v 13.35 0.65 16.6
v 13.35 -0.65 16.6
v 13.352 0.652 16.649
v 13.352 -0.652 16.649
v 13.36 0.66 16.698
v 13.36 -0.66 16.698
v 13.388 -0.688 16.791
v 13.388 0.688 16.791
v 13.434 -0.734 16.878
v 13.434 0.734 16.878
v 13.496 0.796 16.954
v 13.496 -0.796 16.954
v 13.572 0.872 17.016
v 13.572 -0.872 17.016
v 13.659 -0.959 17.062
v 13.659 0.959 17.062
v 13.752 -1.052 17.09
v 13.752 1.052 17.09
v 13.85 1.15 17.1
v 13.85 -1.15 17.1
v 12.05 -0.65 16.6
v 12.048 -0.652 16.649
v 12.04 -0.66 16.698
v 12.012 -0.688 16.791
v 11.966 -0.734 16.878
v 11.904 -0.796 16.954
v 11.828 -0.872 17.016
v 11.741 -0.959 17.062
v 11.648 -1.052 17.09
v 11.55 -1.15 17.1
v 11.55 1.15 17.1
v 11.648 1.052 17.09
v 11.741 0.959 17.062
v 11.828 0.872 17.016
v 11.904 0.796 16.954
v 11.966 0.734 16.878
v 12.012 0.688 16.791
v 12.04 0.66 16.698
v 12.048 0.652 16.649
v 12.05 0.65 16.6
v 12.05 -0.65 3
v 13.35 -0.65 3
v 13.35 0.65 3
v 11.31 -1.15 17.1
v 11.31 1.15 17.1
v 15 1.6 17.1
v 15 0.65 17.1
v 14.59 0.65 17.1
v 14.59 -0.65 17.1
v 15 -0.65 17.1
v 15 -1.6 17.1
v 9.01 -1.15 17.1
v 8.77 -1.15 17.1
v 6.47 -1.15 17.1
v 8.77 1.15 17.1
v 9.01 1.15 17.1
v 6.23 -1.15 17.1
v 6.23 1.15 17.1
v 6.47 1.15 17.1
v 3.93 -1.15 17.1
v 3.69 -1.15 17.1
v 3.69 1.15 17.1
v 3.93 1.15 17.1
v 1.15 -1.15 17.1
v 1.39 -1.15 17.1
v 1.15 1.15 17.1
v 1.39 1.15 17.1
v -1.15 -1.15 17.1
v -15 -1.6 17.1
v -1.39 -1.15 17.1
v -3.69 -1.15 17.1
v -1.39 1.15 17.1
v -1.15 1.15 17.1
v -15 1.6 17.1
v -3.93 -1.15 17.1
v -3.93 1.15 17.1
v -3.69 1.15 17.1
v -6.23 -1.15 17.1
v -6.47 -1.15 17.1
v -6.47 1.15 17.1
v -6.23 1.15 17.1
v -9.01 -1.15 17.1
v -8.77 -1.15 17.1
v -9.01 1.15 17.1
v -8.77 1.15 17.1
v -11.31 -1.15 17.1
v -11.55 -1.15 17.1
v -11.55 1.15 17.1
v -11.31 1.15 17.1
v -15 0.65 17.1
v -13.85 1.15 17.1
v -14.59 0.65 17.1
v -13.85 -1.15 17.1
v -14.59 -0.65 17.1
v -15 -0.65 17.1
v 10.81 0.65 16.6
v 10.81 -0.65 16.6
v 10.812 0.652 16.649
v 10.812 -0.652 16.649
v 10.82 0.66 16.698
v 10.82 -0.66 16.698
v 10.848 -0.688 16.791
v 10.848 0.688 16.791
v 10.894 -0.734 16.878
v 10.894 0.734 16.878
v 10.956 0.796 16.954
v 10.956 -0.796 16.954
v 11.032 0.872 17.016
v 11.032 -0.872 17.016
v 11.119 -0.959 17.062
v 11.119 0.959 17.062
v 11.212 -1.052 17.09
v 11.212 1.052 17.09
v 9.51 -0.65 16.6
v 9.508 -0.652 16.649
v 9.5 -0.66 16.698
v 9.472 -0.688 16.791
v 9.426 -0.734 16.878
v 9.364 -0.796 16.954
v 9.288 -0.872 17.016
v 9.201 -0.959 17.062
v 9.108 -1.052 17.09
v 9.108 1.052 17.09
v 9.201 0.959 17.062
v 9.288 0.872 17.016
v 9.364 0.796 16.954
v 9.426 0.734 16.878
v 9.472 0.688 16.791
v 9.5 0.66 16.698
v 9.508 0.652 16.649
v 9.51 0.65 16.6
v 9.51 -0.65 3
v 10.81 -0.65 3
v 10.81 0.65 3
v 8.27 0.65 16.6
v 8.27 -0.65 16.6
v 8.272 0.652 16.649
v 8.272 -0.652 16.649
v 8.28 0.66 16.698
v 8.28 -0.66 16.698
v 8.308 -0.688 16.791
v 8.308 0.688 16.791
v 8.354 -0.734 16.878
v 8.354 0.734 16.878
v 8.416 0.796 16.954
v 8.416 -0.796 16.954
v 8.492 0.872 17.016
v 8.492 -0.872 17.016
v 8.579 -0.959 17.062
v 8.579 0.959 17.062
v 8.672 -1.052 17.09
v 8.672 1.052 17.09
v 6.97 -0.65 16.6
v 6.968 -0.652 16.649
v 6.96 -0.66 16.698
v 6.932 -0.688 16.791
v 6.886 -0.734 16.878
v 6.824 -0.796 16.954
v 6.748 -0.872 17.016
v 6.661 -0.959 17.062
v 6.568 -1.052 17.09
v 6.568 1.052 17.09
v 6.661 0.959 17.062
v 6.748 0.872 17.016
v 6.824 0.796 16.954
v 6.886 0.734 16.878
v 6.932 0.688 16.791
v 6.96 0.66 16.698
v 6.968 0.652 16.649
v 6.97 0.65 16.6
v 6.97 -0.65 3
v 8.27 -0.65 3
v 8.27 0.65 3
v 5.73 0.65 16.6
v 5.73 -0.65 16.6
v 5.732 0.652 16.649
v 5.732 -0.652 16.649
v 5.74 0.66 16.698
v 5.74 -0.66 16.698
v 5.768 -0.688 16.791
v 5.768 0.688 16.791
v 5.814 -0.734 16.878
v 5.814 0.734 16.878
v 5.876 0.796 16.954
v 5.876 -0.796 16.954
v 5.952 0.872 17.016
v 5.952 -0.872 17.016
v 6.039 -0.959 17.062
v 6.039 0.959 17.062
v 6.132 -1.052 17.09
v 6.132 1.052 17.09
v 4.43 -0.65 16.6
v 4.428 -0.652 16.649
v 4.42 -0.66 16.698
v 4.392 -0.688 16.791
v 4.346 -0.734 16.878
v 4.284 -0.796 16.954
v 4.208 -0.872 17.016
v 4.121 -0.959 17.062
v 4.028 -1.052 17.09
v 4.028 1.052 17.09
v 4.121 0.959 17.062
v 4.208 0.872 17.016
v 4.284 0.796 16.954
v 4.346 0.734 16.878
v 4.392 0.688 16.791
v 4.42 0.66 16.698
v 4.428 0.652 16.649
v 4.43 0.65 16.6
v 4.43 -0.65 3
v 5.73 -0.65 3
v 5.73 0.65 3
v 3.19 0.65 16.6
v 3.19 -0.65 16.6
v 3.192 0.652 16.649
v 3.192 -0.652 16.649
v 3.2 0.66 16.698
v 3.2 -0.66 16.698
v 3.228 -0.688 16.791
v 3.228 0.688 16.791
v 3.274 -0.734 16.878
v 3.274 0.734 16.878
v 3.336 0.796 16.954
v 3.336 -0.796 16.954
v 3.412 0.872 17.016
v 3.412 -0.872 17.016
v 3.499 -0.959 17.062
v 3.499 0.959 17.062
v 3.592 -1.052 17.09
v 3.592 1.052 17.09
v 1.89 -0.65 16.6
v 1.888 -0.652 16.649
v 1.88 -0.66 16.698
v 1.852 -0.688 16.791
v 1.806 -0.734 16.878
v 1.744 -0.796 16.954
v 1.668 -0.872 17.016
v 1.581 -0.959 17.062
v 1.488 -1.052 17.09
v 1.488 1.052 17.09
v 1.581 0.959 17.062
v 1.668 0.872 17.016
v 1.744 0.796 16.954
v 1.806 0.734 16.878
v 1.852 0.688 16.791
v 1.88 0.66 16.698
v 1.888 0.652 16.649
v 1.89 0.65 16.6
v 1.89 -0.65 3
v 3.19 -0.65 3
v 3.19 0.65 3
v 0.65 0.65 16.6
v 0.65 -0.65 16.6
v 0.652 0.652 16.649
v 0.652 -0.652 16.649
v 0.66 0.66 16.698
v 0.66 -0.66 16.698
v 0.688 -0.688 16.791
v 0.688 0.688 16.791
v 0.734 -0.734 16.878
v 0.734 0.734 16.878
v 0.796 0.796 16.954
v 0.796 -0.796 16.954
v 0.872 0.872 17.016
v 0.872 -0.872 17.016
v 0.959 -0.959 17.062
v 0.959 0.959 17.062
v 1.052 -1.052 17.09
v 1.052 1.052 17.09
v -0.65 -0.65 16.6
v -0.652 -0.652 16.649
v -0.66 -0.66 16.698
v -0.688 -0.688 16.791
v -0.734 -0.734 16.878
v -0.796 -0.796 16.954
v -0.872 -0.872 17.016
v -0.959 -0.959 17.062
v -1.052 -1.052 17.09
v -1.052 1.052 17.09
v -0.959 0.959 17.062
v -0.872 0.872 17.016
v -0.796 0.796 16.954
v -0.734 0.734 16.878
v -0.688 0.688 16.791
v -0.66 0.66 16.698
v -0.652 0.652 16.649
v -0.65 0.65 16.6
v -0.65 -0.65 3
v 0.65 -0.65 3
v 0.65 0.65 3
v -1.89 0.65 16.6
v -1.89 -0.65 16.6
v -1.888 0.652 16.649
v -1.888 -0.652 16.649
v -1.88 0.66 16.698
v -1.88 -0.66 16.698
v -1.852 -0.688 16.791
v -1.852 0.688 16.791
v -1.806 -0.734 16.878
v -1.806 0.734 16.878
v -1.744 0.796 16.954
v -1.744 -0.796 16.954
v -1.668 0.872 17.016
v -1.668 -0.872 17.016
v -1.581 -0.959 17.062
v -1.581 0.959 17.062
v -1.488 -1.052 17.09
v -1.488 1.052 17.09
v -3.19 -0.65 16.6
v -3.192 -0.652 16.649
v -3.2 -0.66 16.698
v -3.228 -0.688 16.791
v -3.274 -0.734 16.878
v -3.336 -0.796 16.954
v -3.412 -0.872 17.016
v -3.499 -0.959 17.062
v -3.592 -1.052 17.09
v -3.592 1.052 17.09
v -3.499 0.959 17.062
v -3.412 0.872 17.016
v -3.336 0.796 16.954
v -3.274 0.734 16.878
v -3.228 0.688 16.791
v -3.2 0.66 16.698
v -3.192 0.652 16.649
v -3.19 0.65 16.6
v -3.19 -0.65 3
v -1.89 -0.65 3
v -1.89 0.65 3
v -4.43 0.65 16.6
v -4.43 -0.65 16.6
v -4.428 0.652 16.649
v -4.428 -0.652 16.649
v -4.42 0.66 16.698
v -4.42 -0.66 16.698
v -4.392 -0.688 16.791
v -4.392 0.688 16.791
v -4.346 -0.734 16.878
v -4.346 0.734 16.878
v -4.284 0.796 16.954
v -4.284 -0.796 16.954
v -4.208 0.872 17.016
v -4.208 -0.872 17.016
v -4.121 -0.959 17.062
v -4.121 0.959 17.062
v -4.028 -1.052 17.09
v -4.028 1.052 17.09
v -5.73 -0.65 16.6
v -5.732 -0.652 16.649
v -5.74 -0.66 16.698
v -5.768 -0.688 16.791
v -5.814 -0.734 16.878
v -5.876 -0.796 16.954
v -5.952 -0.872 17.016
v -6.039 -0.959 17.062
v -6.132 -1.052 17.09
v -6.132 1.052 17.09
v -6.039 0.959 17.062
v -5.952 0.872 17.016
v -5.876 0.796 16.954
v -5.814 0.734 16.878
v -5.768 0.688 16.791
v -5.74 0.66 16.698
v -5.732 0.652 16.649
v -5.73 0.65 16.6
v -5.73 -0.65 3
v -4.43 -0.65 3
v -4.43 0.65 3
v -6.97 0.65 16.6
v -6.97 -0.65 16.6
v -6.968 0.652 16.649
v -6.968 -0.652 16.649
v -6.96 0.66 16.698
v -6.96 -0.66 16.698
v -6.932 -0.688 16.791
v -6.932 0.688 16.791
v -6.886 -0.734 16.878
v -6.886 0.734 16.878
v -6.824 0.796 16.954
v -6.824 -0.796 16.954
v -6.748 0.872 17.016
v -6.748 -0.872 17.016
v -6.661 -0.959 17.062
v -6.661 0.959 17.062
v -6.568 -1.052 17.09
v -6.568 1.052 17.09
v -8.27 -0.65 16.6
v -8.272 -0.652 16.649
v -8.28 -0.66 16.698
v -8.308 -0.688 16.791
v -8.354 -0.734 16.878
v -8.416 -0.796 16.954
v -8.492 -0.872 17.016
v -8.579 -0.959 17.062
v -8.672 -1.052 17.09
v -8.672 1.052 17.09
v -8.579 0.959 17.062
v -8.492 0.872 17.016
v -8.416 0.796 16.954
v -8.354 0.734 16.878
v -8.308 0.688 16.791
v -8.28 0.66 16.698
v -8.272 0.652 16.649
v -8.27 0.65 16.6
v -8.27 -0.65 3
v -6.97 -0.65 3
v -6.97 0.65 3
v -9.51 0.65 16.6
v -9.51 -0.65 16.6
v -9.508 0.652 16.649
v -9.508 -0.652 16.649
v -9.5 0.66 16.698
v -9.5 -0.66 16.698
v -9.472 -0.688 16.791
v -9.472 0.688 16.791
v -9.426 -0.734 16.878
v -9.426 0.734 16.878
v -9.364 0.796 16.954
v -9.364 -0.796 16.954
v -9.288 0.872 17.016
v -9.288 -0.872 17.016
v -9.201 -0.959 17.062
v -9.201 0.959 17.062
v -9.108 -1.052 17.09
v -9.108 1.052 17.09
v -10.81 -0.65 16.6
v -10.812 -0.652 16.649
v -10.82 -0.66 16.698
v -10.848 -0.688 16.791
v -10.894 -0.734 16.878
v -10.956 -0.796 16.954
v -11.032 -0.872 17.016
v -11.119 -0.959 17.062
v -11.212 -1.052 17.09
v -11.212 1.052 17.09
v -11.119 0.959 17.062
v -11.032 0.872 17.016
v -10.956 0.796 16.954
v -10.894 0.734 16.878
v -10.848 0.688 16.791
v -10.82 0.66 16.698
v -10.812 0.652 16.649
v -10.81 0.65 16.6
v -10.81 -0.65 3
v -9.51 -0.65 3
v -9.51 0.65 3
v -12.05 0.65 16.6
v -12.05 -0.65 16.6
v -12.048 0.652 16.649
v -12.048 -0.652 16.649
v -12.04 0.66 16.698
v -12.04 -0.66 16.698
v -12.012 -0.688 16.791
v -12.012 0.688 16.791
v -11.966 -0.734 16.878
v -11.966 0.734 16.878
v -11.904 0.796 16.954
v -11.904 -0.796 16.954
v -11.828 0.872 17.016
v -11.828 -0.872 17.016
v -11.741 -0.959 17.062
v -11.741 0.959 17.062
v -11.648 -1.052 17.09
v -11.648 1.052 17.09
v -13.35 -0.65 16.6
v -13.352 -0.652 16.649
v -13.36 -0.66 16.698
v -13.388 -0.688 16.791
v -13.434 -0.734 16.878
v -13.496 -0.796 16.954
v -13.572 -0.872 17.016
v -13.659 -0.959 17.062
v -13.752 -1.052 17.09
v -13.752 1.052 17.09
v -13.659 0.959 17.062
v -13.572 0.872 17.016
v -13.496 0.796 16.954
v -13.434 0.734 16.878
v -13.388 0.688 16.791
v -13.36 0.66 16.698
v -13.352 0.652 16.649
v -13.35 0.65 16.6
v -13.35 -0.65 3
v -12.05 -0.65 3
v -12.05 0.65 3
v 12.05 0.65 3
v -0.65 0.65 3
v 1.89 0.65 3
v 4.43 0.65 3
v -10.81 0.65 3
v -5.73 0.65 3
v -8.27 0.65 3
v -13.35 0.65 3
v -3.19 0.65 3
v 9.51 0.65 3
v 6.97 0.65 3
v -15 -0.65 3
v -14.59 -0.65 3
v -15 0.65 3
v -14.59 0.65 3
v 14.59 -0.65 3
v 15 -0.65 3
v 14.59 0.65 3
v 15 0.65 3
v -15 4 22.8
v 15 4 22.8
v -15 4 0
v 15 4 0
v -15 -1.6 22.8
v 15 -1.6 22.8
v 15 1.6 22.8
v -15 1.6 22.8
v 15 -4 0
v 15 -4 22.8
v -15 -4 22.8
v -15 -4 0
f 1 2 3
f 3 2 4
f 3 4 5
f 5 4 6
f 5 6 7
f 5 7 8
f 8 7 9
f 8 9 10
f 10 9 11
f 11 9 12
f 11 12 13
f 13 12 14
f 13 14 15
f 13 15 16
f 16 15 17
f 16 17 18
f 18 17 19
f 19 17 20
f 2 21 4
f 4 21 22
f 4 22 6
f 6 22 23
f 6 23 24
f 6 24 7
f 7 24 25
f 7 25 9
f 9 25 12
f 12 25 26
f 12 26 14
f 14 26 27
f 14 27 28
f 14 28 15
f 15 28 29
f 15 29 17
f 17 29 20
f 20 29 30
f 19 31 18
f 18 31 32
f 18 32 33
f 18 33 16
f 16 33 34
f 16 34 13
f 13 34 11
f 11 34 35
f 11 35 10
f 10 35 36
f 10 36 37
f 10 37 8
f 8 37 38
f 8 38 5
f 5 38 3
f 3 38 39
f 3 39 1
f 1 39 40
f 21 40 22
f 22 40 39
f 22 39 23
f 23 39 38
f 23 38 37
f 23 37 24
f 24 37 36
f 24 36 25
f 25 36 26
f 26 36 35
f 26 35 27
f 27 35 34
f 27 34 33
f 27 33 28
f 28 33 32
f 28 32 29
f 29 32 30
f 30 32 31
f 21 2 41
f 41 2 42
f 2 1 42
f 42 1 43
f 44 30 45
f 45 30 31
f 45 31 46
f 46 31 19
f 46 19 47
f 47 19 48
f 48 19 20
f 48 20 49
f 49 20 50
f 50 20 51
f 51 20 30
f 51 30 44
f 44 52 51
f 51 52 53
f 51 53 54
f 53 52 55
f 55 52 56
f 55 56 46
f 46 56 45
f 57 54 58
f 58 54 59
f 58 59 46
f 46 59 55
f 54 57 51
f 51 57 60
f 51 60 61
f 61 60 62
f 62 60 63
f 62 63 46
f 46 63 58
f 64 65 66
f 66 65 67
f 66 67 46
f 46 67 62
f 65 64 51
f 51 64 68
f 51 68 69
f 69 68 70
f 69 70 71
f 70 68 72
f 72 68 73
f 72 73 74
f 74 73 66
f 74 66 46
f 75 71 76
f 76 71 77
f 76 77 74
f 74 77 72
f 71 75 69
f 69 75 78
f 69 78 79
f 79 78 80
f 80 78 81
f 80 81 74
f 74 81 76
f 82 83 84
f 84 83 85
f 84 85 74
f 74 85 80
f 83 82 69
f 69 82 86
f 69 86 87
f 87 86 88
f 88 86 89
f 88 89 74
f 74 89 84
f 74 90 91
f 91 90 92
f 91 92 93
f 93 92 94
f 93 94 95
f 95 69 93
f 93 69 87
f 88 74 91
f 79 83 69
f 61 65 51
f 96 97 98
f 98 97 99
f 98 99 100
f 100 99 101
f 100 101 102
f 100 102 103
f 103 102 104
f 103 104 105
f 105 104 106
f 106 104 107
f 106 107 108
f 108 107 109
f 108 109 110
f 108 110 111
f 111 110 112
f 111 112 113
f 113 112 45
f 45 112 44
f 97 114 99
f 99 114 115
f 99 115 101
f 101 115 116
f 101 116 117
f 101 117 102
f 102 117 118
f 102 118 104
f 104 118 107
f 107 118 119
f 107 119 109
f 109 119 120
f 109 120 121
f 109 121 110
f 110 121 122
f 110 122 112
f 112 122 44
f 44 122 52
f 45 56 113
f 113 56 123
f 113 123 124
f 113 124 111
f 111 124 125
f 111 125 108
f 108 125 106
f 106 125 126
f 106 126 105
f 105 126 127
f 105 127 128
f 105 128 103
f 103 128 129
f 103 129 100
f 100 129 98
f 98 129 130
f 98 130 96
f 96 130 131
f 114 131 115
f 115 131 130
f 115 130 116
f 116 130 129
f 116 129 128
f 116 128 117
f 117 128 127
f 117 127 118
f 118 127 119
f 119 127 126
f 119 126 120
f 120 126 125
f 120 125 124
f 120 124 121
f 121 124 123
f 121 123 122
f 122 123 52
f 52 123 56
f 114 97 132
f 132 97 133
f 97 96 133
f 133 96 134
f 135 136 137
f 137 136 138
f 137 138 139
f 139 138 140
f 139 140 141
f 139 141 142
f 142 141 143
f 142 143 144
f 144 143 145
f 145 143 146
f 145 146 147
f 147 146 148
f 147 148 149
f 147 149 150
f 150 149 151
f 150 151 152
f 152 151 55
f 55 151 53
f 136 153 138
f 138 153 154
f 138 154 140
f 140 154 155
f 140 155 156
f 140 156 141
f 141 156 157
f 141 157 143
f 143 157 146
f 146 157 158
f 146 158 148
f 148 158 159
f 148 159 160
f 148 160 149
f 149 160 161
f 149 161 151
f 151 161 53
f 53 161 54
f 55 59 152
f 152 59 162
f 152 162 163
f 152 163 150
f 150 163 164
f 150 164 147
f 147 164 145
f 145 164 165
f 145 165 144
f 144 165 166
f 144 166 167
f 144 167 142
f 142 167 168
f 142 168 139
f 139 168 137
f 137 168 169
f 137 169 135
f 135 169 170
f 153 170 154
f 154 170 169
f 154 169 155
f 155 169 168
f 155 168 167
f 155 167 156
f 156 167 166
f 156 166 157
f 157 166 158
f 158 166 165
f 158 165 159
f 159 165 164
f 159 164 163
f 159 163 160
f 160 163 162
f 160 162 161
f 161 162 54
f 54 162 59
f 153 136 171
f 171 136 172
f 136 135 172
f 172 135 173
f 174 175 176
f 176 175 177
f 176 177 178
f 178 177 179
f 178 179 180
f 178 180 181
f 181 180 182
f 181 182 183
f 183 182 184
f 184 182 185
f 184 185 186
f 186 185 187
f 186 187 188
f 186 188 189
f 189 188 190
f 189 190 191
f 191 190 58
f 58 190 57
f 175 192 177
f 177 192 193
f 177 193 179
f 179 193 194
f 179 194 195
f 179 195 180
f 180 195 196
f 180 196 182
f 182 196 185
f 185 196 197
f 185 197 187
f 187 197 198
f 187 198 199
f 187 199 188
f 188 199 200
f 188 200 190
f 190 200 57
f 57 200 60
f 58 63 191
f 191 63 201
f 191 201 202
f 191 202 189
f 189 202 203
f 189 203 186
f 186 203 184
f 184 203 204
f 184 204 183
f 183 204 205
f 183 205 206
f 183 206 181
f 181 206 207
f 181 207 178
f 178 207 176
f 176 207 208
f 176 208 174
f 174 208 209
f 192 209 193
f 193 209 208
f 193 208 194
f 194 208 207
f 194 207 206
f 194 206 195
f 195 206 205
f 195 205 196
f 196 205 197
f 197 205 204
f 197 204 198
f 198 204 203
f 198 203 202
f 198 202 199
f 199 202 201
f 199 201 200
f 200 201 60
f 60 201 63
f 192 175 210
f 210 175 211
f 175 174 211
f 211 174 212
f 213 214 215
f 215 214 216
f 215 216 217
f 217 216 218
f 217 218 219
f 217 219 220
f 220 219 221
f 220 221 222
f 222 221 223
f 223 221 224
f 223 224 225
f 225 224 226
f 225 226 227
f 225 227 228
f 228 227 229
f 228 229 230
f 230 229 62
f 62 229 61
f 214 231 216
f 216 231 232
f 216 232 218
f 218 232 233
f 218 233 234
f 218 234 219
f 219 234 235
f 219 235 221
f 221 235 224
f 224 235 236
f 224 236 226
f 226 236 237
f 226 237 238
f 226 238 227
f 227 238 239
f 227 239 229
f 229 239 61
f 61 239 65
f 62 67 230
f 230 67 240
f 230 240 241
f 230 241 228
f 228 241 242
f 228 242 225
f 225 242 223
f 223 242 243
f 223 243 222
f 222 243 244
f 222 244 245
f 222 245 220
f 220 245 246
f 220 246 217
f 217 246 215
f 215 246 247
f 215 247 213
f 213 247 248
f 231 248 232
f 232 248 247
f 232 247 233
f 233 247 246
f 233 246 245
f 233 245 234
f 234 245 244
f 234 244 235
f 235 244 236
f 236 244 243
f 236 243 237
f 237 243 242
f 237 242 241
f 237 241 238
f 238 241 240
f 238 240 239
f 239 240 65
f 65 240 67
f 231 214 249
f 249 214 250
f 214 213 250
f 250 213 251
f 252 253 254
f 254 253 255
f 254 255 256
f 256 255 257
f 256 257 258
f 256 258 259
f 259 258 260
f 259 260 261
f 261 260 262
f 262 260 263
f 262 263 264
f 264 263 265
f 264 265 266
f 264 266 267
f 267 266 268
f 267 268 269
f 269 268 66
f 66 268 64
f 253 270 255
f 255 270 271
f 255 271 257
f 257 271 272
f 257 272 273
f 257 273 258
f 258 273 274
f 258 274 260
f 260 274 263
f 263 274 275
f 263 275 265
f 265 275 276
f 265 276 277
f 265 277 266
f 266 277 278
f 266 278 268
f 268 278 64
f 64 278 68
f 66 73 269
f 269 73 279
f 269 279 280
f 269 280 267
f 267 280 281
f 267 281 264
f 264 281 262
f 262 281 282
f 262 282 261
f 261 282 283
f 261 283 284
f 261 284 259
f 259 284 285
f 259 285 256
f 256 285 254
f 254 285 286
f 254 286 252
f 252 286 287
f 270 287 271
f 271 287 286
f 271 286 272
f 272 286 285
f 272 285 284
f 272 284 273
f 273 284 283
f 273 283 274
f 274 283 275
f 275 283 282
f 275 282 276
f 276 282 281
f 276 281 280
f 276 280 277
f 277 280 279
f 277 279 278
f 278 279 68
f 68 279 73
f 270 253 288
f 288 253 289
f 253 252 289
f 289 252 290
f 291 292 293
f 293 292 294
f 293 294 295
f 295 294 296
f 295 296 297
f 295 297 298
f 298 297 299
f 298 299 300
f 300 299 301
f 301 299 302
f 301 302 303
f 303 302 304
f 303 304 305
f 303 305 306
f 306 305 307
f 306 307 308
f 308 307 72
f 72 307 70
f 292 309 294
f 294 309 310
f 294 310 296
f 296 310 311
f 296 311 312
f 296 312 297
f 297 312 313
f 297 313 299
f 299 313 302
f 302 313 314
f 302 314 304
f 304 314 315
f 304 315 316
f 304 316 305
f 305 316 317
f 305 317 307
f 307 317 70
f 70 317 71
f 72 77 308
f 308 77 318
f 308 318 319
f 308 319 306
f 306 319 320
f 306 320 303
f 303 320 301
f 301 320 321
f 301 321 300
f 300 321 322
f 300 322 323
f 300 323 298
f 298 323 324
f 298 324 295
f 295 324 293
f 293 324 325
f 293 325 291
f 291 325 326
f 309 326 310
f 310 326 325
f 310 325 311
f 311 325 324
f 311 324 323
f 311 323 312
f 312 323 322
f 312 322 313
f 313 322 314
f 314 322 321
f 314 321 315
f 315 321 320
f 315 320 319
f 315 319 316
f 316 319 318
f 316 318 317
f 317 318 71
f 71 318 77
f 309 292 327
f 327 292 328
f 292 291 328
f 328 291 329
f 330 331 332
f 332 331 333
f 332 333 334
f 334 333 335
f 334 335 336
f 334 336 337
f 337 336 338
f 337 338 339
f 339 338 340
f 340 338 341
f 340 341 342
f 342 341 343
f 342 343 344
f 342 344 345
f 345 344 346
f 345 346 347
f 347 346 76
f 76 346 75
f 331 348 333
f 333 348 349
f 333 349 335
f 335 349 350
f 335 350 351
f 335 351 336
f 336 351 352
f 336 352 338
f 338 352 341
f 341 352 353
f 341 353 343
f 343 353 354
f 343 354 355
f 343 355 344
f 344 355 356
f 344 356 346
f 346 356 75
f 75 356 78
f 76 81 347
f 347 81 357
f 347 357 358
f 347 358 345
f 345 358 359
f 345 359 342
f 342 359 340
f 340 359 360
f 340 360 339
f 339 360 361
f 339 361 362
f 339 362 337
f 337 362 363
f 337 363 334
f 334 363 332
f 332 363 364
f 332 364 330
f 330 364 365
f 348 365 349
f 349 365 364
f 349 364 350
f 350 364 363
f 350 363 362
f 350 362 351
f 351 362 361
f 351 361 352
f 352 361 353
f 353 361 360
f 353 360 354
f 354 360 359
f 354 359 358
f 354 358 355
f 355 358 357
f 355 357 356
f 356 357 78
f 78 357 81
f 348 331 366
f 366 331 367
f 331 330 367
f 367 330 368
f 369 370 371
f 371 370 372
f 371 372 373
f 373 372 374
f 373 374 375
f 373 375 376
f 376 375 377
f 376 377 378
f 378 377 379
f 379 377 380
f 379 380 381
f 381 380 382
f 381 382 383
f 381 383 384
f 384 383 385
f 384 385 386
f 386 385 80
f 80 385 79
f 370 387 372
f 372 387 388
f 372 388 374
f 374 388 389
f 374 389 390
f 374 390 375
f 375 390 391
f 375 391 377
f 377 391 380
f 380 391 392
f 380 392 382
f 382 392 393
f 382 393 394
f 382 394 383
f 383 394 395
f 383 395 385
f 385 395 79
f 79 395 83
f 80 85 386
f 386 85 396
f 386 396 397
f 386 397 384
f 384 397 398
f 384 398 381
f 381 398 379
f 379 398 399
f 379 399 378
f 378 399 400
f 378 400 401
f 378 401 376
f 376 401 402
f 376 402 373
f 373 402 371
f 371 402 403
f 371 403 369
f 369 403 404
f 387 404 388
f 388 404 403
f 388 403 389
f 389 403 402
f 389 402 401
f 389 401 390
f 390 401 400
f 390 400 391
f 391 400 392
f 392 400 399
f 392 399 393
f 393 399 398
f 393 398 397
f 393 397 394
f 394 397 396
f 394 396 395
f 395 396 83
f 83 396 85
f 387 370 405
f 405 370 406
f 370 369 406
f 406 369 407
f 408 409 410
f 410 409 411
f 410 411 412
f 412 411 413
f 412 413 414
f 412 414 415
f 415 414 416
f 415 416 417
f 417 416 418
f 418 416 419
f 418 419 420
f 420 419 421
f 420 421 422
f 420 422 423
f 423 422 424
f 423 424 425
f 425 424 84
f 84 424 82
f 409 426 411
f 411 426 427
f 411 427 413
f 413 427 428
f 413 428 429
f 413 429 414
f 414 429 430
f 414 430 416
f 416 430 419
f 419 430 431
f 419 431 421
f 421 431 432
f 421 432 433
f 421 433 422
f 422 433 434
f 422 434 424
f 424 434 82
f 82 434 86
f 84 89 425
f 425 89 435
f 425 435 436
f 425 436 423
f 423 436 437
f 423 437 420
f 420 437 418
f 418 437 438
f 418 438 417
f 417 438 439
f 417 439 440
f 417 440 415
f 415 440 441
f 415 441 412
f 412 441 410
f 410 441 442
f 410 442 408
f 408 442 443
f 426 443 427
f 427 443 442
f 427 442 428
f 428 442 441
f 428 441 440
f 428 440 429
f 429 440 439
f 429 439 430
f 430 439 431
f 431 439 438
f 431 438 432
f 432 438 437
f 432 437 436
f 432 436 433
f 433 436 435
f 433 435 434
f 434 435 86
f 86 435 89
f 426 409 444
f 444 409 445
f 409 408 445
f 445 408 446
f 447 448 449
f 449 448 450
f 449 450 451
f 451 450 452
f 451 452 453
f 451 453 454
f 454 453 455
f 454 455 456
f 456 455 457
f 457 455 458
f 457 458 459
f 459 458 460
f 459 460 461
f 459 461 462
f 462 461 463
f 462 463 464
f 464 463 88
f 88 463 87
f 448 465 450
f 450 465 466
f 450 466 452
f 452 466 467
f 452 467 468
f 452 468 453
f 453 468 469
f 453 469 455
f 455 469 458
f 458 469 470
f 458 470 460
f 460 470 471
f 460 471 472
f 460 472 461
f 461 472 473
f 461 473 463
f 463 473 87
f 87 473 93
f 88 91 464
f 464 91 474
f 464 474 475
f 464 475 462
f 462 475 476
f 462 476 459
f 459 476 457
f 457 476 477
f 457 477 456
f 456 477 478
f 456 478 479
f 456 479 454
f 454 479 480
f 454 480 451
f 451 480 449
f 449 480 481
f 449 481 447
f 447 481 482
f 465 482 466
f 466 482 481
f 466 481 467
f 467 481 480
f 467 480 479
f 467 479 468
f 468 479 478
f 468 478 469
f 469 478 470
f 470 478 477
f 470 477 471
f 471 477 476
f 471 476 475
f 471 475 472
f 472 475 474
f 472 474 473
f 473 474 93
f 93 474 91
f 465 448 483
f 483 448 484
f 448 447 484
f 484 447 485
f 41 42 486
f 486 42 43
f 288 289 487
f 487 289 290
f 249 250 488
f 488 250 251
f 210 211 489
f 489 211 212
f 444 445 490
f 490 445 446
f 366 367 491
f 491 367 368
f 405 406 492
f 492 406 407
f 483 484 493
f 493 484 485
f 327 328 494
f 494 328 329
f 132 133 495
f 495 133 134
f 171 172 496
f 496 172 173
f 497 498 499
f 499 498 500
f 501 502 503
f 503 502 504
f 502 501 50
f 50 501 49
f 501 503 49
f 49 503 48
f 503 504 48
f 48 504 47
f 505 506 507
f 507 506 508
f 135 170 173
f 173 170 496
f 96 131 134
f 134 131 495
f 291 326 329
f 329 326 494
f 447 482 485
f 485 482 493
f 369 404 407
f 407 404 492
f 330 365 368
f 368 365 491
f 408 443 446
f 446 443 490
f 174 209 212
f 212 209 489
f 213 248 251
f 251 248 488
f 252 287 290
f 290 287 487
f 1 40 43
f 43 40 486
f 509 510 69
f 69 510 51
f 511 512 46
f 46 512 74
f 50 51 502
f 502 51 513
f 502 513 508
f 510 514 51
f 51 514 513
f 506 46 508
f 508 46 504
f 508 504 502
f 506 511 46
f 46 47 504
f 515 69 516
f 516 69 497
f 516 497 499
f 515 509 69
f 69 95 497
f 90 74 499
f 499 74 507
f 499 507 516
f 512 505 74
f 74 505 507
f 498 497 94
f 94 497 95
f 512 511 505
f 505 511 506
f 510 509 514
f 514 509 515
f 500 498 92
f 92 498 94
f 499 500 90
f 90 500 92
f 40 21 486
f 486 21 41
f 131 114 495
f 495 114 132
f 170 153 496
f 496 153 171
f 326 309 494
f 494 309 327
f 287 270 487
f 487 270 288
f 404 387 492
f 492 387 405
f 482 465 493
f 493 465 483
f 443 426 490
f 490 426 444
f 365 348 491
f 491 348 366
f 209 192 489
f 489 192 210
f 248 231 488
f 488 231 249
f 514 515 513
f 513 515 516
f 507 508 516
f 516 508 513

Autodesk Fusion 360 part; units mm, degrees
sketch "Sketch1" plane through (0, 0, 0) normal (0, 0, 1) x (1, 0, 0)
  line L0 (0, 0) -> (15, 0) construction
  line L1 (15, 0) -> (15, 4)
  line L2 (15, 4) -> (0, 4)
  line L3 (0, 4) -> (0, 0) construction
  line L4 (0, 0) -> (0.65, 0) construction
  line L5 (0.65, 0) -> (0.65, 0.65)
  line L6 (0.65, 0.65) -> (0, 0.65)
  line L7 (0, 0.65) -> (0, 0) construction
  line L8 (0.65, -0.65) -> (0, -0.65)
  line L9 (0.65, 0) -> (0.65, -0.65)
  line L10 (-0.65, 0.65) -> (0, 0.65)
  line L11 (-0.65, 0) -> (-0.65, 0.65)
  line L12 (-0.65, 0) -> (-0.65, -0.65)
  line L13 (-0.65, -0.65) -> (0, -0.65)
  line L14 (1.89, 0) -> (1.89, 0.65)
  line L15 (1.89, 0.65) -> (2.54, 0.65)
  line L16 (3.19, 0) -> (3.19, 0.65)
  line L17 (3.19, 0.65) -> (2.54, 0.65)
  line L18 (3.19, 0) -> (3.19, -0.65)
  line L19 (3.19, -0.65) -> (2.54, -0.65)
  line L20 (1.89, 0) -> (1.89, -0.65)
  line L21 (1.89, -0.65) -> (2.54, -0.65)
  line L22 (2.54, 0) -> (17.54, 0) construction
  line L23 (4.43, 0) -> (4.43, 0.65)
  line L24 (4.43, 0.65) -> (5.08, 0.65)
  line L25 (5.73, 0) -> (5.73, 0.65)
  line L26 (5.73, 0.65) -> (5.08, 0.65)
  line L27 (5.73, 0) -> (5.73, -0.65)
  line L28 (5.73, -0.65) -> (5.08, -0.65)
  line L29 (4.43, 0) -> (4.43, -0.65)
  line L30 (4.43, -0.65) -> (5.08, -0.65)
  line L31 (5.08, 0) -> (20.08, 0) construction
  line L32 (6.97, 0) -> (6.97, 0.65)
  line L33 (6.97, 0.65) -> (7.62, 0.65)
  line L34 (8.27, 0) -> (8.27, 0.65)
  line L35 (8.27, 0.65) -> (7.62, 0.65)
  line L36 (8.27, 0) -> (8.27, -0.65)
  line L37 (8.27, -0.65) -> (7.62, -0.65)
  line L38 (6.97, 0) -> (6.97, -0.65)
  line L39 (6.97, -0.65) -> (7.62, -0.65)
  line L40 (7.62, 0) -> (22.62, 0) construction
  line L41 (9.51, 0) -> (9.51, 0.65)
  line L42 (9.51, 0.65) -> (10.16, 0.65)
  line L43 (10.81, 0) -> (10.81, 0.65)
  line L44 (10.81, 0.65) -> (10.16, 0.65)
  line L45 (10.81, 0) -> (10.81, -0.65)
  line L46 (10.81, -0.65) -> (10.16, -0.65)
  line L47 (9.51, 0) -> (9.51, -0.65)
  line L48 (9.51, -0.65) -> (10.16, -0.65)
  line L49 (10.16, 0) -> (25.16, 0) construction
  line L50 (12.05, 0) -> (12.05, 0.65)
  line L51 (12.05, 0.65) -> (12.7, 0.65)
  line L52 (13.35, 0) -> (13.35, 0.65)
  line L53 (13.35, 0.65) -> (12.7, 0.65)
  line L54 (13.35, 0) -> (13.35, -0.65)
  line L55 (13.35, -0.65) -> (12.7, -0.65)
  line L56 (12.05, 0) -> (12.05, -0.65)
  line L57 (12.05, -0.65) -> (12.7, -0.65)
  line L58 (12.7, 0) -> (27.7, 0) construction
  line L59 (14.59, 0) -> (14.59, 0.65)
  line L60 (14.59, 0.65) -> (15.24, 0.65)
  line L61 (15.89, 0) -> (15.89, 0.65)
  line L62 (15.89, 0.65) -> (15.24, 0.65)
  line L63 (15.89, 0) -> (15.89, -0.65)
  line L64 (15.89, -0.65) -> (15.24, -0.65)
  line L65 (14.59, 0) -> (14.59, -0.65)
  line L66 (14.59, -0.65) -> (15.24, -0.65)
  line L67 (15.24, 0) -> (30.24, 0) construction
  line L68 (-3.19, 0) -> (-3.19, 0.65)
  line L69 (-3.19, 0.65) -> (-2.54, 0.65)
  line L70 (-1.89, 0) -> (-1.89, 0.65)
  line L71 (-1.89, 0.65) -> (-2.54, 0.65)
  line L72 (-1.89, 0) -> (-1.89, -0.65)
  line L73 (-1.89, -0.65) -> (-2.54, -0.65)
  line L74 (-3.19, 0) -> (-3.19, -0.65)
  line L75 (-3.19, -0.65) -> (-2.54, -0.65)
  line L76 (-2.54, 0) -> (12.46, 0) construction
  line L77 (-5.73, 0) -> (-5.73, 0.65)
  line L78 (-5.73, 0.65) -> (-5.08, 0.65)
  line L79 (-4.43, 0) -> (-4.43, 0.65)
  line L80 (-4.43, 0.65) -> (-5.08, 0.65)
  line L81 (-4.43, 0) -> (-4.43, -0.65)
  line L82 (-4.43, -0.65) -> (-5.08, -0.65)
  line L83 (-5.73, 0) -> (-5.73, -0.65)
  line L84 (-5.73, -0.65) -> (-5.08, -0.65)
  line L85 (-5.08, 0) -> (9.92, 0) construction
  line L86 (-8.27, 0) -> (-8.27, 0.65)
  line L87 (-8.27, 0.65) -> (-7.62, 0.65)
  line L88 (-6.97, 0) -> (-6.97, 0.65)
  line L89 (-6.97, 0.65) -> (-7.62, 0.65)
  line L90 (-6.97, 0) -> (-6.97, -0.65)
  line L91 (-6.97, -0.65) -> (-7.62, -0.65)
  line L92 (-8.27, 0) -> (-8.27, -0.65)
  line L93 (-8.27, -0.65) -> (-7.62, -0.65)
  line L94 (-7.62, 0) -> (7.38, 0) construction
  line L95 (-10.81, 0) -> (-10.81, 0.65)
  line L96 (-10.81, 0.65) -> (-10.16, 0.65)
  line L97 (-9.51, 0) -> (-9.51, 0.65)
  line L98 (-9.51, 0.65) -> (-10.16, 0.65)
  line L99 (-9.51, 0) -> (-9.51, -0.65)
  line L100 (-9.51, -0.65) -> (-10.16, -0.65)
  line L101 (-10.81, 0) -> (-10.81, -0.65)
  line L102 (-10.81, -0.65) -> (-10.16, -0.65)
  line L103 (-10.16, 0) -> (4.84, 0) construction
  line L104 (-13.35, 0) -> (-13.35, 0.65)
  line L105 (-13.35, 0.65) -> (-12.7, 0.65)
  line L106 (-12.05, 0) -> (-12.05, 0.65)
  line L107 (-12.05, 0.65) -> (-12.7, 0.65)
  line L108 (-12.05, 0) -> (-12.05, -0.65)
  line L109 (-12.05, -0.65) -> (-12.7, -0.65)
  line L110 (-13.35, 0) -> (-13.35, -0.65)
  line L111 (-13.35, -0.65) -> (-12.7, -0.65)
  line L112 (-12.7, 0) -> (2.3, 0) construction
  line L113 (-15.89, 0) -> (-15.89, 0.65)
  line L114 (-15.89, 0.65) -> (-15.24, 0.65)
  line L115 (-14.59, 0) -> (-14.59, 0.65)
  line L116 (-14.59, 0.65) -> (-15.24, 0.65)
  line L117 (-14.59, 0) -> (-14.59, -0.65)
  line L118 (-14.59, -0.65) -> (-15.24, -0.65)
  line L119 (-15.89, 0) -> (-15.89, -0.65)
  line L120 (-15.89, -0.65) -> (-15.24, -0.65)
  line L121 (-15.24, 0) -> (-0.24, 0) construction
  line L122 (15, 0) -> (15, -4)
  line L123 (15, -4) -> (0, -4)
  line L124 (-15, 0) -> (-15, 4)
  line L125 (-15, 4) -> (0, 4)
  line L126 (-15, 0) -> (-15, -4)
  line L127 (-15, -4) -> (0, -4)
  dimension "d1" = 15
  dimension "d2" = 4
  dimension "d3" = 0.65
  dimension "d4" = 0.65
  dimension "d7" = 15.24
  dimension "d8" = 0
  dimension "d11" = -15.24
  dimension "d12" = 0
extrude "Extrude1" add sketch "Sketch1" along normal blind 22.8 contours L1 L2 L59 L60 L65 L66 L115 L116 L117 L118 L122 L123 L124 L125 L126 L127
sketch "Sketch2" plane through (0, 0, 22.8) normal (0, 0, 1) x (-1, 0, 0)
  line L0 (-12.05, 0.65) -> (-12.05, -0.65)
  line L1 (-12.05, -0.65) -> (-13.35, -0.65)
  line L2 (-13.35, -0.65) -> (-13.35, 0.65)
  line L3 (-13.35, 0.65) -> (-12.05, 0.65)
  line L4 (3.19, 0.65) -> (3.19, -0.65)
  line L5 (3.19, -0.65) -> (1.89, -0.65)
  line L6 (1.89, -0.65) -> (1.89, 0.65)
  line L7 (1.89, 0.65) -> (3.19, 0.65)
  line L8 (-9.51, 0.65) -> (-9.51, -0.65)
  line L9 (-9.51, -0.65) -> (-10.81, -0.65)
  line L10 (-10.81, -0.65) -> (-10.81, 0.65)
  line L11 (-10.81, 0.65) -> (-9.51, 0.65)
  line L12 (-6.97, 0.65) -> (-6.97, -0.65)
  line L13 (-6.97, -0.65) -> (-8.27, -0.65)
  line L14 (-8.27, -0.65) -> (-8.27, 0.65)
  line L15 (-8.27, 0.65) -> (-6.97, 0.65)
  line L16 (13.35, 0.65) -> (13.35, -0.65)
  line L17 (13.35, -0.65) -> (12.05, -0.65)
  line L18 (12.05, -0.65) -> (12.05, 0.65)
  line L19 (12.05, 0.65) -> (13.35, 0.65)
  line L20 (8.27, 0.65) -> (8.27, -0.65)
  line L21 (8.27, -0.65) -> (6.97, -0.65)
  line L22 (6.97, -0.65) -> (6.97, 0.65)
  line L23 (6.97, 0.65) -> (8.27, 0.65)
  line L24 (5.73, 0.65) -> (5.73, -0.65)
  line L25 (5.73, -0.65) -> (4.43, -0.65)
  line L26 (4.43, -0.65) -> (4.43, 0.65)
  line L27 (4.43, 0.65) -> (5.73, 0.65)
  line L28 (10.81, 0.65) -> (10.81, -0.65)
  line L29 (10.81, -0.65) -> (9.51, -0.65)
  line L30 (9.51, -0.65) -> (9.51, 0.65)
  line L31 (9.51, 0.65) -> (10.81, 0.65)
  line L32 (-4.43, 0.65) -> (-4.43, -0.65)
  line L33 (-4.43, -0.65) -> (-5.73, -0.65)
  line L34 (-5.73, -0.65) -> (-5.73, 0.65)
  line L35 (-5.73, 0.65) -> (-4.43, 0.65)
  line L36 (-1.89, 0.65) -> (-1.89, -0.65)
  line L37 (-1.89, -0.65) -> (-3.19, -0.65)
  line L38 (-3.19, -0.65) -> (-3.19, 0.65)
  line L39 (-3.19, 0.65) -> (-1.89, 0.65)
  line L40 (0.65, 0.65) -> (0.65, -0.65)
  line L41 (0.65, -0.65) -> (-0.65, -0.65)
  line L42 (-0.65, -0.65) -> (-0.65, 0.65)
  line L43 (-0.65, 0.65) -> (0.65, 0.65)
  line L44 (14.59, -0.65) -> (14.59, 0.65)
  line L45 (14.59, 0.65) -> (15, 0.65)
  line L46 (15, 0.65) -> (15, 4)
  line L47 (15, 4) -> (-15, 4)
  line L48 (-15, 4) -> (-15, 0.65)
  line L49 (-15, 0.65) -> (-14.59, 0.65)
  line L50 (-14.59, 0.65) -> (-14.59, -0.65)
  line L51 (-14.59, -0.65) -> (-15, -0.65)
  line L52 (-15, -0.65) -> (-15, -4)
  line L53 (-15, -4) -> (15, -4)
  line L54 (15, -4) -> (15, -0.65)
  line L55 (15, -0.65) -> (14.59, -0.65)
  line L56 (0, 0) -> (-15, 0) construction
  line L57 (-15, 0) -> (-15, -1.6)
  line L58 (-15, -1.6) -> (0, -1.6)
  line L59 (0, -1.6) -> (0, 0) construction
  line L60 (-15, 0) -> (-15, 1.6)
  line L61 (-15, 1.6) -> (0, 1.6)
  line L62 (15, 0) -> (15, -1.6)
  line L63 (15, -1.6) -> (0, -1.6)
  line L64 (15, 0) -> (15, 1.6)
  line L65 (15, 1.6) -> (0, 1.6)
  dimension "d15" = 1.6
extrude "Extrude2" cut sketch "Sketch2" against normal blind 5.7 contours L44 L45 L46 L48 L49 L50 L51 L52 L54 L55 L57 L58 L60 L61 L62 L63 L64 L65
extrude "Extrude4" add sketch "Sketch1" along normal blind 3 contours L1 L59 L60 L65 L66 L122 | L1 L2 L59 L60 L65 L66 L115 L116 L117 L118 L122 L123 L124 L125 L126 L127 | L115 L116 L117 L118 L124 L126 | L5 L6 L8 L9 L10 L11 L12 L13 | L14 L15 L16 L17 L18 L19 L20 L21 | L23 L24 L25 L26 L27 L28 L29 L30 | L32 L33 L34 L35 L36 L37 L38 L39 | L41 L42 L43 L44 L45 L46 L47 L48 | L50 L51 L52 L53 L54 L55 L56 L57 | L68 L69 L70 L71 L72 L73 L74 L75 | L77 L78 L79 L80 L81 L82 L83 L84 | L86 L87 L88 L89 L90 L91 L92 L93 | L95 L96 L97 L98 L99 L100 L101 L102 | L104 L105 L106 L107 L108 L109 L110 L111
fillet "Fillet1" radius 0.5 44 edges at (-13.35, 0, 17.1) (-12.7, 0.65, 17.1) (-12.05, 0, 17.1) (-12.7, -0.65, 17.1) (-10.81, 0, 17.1) (-10.16, 0.65, 17.1) (-10.16, -0.65, 17.1) (-9.51, 0, 17.1) (-8.27, 0, 17.1) (-7.62, 0.65, 17.1) (-6.97, 0, 17.1) (-7.62, -0.65, 17.1) (-5.73, 0, 17.1) (-5.08, 0.65, 17.1) (-4.43, 0, 17.1) (-5.08, -0.65, 17.1) (-3.19, 0, 17.1) (-2.54, 0.65, 17.1) (-1.89, 0, 17.1) (-2.54, -0.65, 17.1) (-0.65, 0, 17.1) (0, 0.65, 17.1) (0.65, 0, 17.1) (0, -0.65, 17.1) (1.89, 0, 17.1) (2.54, 0.65, 17.1) (3.19, 0, 17.1) (2.54, -0.65, 17.1) (4.43, 0, 17.1) (5.08, 0.65, 17.1) (5.73, 0, 17.1) (5.08, -0.65, 17.1) (6.97, 0, 17.1) (7.62, 0.65, 17.1) (8.27, 0, 17.1) (7.62, -0.65, 17.1) (9.51, 0, 17.1) (10.16, 0.65, 17.1) (10.81, 0, 17.1) (10.16, -0.65, 17.1) (12.05, 0, 17.1) (12.7, 0.65, 17.1) (13.35, 0, 17.1) (12.7, -0.65, 17.1)
equation "d3 = d4"
